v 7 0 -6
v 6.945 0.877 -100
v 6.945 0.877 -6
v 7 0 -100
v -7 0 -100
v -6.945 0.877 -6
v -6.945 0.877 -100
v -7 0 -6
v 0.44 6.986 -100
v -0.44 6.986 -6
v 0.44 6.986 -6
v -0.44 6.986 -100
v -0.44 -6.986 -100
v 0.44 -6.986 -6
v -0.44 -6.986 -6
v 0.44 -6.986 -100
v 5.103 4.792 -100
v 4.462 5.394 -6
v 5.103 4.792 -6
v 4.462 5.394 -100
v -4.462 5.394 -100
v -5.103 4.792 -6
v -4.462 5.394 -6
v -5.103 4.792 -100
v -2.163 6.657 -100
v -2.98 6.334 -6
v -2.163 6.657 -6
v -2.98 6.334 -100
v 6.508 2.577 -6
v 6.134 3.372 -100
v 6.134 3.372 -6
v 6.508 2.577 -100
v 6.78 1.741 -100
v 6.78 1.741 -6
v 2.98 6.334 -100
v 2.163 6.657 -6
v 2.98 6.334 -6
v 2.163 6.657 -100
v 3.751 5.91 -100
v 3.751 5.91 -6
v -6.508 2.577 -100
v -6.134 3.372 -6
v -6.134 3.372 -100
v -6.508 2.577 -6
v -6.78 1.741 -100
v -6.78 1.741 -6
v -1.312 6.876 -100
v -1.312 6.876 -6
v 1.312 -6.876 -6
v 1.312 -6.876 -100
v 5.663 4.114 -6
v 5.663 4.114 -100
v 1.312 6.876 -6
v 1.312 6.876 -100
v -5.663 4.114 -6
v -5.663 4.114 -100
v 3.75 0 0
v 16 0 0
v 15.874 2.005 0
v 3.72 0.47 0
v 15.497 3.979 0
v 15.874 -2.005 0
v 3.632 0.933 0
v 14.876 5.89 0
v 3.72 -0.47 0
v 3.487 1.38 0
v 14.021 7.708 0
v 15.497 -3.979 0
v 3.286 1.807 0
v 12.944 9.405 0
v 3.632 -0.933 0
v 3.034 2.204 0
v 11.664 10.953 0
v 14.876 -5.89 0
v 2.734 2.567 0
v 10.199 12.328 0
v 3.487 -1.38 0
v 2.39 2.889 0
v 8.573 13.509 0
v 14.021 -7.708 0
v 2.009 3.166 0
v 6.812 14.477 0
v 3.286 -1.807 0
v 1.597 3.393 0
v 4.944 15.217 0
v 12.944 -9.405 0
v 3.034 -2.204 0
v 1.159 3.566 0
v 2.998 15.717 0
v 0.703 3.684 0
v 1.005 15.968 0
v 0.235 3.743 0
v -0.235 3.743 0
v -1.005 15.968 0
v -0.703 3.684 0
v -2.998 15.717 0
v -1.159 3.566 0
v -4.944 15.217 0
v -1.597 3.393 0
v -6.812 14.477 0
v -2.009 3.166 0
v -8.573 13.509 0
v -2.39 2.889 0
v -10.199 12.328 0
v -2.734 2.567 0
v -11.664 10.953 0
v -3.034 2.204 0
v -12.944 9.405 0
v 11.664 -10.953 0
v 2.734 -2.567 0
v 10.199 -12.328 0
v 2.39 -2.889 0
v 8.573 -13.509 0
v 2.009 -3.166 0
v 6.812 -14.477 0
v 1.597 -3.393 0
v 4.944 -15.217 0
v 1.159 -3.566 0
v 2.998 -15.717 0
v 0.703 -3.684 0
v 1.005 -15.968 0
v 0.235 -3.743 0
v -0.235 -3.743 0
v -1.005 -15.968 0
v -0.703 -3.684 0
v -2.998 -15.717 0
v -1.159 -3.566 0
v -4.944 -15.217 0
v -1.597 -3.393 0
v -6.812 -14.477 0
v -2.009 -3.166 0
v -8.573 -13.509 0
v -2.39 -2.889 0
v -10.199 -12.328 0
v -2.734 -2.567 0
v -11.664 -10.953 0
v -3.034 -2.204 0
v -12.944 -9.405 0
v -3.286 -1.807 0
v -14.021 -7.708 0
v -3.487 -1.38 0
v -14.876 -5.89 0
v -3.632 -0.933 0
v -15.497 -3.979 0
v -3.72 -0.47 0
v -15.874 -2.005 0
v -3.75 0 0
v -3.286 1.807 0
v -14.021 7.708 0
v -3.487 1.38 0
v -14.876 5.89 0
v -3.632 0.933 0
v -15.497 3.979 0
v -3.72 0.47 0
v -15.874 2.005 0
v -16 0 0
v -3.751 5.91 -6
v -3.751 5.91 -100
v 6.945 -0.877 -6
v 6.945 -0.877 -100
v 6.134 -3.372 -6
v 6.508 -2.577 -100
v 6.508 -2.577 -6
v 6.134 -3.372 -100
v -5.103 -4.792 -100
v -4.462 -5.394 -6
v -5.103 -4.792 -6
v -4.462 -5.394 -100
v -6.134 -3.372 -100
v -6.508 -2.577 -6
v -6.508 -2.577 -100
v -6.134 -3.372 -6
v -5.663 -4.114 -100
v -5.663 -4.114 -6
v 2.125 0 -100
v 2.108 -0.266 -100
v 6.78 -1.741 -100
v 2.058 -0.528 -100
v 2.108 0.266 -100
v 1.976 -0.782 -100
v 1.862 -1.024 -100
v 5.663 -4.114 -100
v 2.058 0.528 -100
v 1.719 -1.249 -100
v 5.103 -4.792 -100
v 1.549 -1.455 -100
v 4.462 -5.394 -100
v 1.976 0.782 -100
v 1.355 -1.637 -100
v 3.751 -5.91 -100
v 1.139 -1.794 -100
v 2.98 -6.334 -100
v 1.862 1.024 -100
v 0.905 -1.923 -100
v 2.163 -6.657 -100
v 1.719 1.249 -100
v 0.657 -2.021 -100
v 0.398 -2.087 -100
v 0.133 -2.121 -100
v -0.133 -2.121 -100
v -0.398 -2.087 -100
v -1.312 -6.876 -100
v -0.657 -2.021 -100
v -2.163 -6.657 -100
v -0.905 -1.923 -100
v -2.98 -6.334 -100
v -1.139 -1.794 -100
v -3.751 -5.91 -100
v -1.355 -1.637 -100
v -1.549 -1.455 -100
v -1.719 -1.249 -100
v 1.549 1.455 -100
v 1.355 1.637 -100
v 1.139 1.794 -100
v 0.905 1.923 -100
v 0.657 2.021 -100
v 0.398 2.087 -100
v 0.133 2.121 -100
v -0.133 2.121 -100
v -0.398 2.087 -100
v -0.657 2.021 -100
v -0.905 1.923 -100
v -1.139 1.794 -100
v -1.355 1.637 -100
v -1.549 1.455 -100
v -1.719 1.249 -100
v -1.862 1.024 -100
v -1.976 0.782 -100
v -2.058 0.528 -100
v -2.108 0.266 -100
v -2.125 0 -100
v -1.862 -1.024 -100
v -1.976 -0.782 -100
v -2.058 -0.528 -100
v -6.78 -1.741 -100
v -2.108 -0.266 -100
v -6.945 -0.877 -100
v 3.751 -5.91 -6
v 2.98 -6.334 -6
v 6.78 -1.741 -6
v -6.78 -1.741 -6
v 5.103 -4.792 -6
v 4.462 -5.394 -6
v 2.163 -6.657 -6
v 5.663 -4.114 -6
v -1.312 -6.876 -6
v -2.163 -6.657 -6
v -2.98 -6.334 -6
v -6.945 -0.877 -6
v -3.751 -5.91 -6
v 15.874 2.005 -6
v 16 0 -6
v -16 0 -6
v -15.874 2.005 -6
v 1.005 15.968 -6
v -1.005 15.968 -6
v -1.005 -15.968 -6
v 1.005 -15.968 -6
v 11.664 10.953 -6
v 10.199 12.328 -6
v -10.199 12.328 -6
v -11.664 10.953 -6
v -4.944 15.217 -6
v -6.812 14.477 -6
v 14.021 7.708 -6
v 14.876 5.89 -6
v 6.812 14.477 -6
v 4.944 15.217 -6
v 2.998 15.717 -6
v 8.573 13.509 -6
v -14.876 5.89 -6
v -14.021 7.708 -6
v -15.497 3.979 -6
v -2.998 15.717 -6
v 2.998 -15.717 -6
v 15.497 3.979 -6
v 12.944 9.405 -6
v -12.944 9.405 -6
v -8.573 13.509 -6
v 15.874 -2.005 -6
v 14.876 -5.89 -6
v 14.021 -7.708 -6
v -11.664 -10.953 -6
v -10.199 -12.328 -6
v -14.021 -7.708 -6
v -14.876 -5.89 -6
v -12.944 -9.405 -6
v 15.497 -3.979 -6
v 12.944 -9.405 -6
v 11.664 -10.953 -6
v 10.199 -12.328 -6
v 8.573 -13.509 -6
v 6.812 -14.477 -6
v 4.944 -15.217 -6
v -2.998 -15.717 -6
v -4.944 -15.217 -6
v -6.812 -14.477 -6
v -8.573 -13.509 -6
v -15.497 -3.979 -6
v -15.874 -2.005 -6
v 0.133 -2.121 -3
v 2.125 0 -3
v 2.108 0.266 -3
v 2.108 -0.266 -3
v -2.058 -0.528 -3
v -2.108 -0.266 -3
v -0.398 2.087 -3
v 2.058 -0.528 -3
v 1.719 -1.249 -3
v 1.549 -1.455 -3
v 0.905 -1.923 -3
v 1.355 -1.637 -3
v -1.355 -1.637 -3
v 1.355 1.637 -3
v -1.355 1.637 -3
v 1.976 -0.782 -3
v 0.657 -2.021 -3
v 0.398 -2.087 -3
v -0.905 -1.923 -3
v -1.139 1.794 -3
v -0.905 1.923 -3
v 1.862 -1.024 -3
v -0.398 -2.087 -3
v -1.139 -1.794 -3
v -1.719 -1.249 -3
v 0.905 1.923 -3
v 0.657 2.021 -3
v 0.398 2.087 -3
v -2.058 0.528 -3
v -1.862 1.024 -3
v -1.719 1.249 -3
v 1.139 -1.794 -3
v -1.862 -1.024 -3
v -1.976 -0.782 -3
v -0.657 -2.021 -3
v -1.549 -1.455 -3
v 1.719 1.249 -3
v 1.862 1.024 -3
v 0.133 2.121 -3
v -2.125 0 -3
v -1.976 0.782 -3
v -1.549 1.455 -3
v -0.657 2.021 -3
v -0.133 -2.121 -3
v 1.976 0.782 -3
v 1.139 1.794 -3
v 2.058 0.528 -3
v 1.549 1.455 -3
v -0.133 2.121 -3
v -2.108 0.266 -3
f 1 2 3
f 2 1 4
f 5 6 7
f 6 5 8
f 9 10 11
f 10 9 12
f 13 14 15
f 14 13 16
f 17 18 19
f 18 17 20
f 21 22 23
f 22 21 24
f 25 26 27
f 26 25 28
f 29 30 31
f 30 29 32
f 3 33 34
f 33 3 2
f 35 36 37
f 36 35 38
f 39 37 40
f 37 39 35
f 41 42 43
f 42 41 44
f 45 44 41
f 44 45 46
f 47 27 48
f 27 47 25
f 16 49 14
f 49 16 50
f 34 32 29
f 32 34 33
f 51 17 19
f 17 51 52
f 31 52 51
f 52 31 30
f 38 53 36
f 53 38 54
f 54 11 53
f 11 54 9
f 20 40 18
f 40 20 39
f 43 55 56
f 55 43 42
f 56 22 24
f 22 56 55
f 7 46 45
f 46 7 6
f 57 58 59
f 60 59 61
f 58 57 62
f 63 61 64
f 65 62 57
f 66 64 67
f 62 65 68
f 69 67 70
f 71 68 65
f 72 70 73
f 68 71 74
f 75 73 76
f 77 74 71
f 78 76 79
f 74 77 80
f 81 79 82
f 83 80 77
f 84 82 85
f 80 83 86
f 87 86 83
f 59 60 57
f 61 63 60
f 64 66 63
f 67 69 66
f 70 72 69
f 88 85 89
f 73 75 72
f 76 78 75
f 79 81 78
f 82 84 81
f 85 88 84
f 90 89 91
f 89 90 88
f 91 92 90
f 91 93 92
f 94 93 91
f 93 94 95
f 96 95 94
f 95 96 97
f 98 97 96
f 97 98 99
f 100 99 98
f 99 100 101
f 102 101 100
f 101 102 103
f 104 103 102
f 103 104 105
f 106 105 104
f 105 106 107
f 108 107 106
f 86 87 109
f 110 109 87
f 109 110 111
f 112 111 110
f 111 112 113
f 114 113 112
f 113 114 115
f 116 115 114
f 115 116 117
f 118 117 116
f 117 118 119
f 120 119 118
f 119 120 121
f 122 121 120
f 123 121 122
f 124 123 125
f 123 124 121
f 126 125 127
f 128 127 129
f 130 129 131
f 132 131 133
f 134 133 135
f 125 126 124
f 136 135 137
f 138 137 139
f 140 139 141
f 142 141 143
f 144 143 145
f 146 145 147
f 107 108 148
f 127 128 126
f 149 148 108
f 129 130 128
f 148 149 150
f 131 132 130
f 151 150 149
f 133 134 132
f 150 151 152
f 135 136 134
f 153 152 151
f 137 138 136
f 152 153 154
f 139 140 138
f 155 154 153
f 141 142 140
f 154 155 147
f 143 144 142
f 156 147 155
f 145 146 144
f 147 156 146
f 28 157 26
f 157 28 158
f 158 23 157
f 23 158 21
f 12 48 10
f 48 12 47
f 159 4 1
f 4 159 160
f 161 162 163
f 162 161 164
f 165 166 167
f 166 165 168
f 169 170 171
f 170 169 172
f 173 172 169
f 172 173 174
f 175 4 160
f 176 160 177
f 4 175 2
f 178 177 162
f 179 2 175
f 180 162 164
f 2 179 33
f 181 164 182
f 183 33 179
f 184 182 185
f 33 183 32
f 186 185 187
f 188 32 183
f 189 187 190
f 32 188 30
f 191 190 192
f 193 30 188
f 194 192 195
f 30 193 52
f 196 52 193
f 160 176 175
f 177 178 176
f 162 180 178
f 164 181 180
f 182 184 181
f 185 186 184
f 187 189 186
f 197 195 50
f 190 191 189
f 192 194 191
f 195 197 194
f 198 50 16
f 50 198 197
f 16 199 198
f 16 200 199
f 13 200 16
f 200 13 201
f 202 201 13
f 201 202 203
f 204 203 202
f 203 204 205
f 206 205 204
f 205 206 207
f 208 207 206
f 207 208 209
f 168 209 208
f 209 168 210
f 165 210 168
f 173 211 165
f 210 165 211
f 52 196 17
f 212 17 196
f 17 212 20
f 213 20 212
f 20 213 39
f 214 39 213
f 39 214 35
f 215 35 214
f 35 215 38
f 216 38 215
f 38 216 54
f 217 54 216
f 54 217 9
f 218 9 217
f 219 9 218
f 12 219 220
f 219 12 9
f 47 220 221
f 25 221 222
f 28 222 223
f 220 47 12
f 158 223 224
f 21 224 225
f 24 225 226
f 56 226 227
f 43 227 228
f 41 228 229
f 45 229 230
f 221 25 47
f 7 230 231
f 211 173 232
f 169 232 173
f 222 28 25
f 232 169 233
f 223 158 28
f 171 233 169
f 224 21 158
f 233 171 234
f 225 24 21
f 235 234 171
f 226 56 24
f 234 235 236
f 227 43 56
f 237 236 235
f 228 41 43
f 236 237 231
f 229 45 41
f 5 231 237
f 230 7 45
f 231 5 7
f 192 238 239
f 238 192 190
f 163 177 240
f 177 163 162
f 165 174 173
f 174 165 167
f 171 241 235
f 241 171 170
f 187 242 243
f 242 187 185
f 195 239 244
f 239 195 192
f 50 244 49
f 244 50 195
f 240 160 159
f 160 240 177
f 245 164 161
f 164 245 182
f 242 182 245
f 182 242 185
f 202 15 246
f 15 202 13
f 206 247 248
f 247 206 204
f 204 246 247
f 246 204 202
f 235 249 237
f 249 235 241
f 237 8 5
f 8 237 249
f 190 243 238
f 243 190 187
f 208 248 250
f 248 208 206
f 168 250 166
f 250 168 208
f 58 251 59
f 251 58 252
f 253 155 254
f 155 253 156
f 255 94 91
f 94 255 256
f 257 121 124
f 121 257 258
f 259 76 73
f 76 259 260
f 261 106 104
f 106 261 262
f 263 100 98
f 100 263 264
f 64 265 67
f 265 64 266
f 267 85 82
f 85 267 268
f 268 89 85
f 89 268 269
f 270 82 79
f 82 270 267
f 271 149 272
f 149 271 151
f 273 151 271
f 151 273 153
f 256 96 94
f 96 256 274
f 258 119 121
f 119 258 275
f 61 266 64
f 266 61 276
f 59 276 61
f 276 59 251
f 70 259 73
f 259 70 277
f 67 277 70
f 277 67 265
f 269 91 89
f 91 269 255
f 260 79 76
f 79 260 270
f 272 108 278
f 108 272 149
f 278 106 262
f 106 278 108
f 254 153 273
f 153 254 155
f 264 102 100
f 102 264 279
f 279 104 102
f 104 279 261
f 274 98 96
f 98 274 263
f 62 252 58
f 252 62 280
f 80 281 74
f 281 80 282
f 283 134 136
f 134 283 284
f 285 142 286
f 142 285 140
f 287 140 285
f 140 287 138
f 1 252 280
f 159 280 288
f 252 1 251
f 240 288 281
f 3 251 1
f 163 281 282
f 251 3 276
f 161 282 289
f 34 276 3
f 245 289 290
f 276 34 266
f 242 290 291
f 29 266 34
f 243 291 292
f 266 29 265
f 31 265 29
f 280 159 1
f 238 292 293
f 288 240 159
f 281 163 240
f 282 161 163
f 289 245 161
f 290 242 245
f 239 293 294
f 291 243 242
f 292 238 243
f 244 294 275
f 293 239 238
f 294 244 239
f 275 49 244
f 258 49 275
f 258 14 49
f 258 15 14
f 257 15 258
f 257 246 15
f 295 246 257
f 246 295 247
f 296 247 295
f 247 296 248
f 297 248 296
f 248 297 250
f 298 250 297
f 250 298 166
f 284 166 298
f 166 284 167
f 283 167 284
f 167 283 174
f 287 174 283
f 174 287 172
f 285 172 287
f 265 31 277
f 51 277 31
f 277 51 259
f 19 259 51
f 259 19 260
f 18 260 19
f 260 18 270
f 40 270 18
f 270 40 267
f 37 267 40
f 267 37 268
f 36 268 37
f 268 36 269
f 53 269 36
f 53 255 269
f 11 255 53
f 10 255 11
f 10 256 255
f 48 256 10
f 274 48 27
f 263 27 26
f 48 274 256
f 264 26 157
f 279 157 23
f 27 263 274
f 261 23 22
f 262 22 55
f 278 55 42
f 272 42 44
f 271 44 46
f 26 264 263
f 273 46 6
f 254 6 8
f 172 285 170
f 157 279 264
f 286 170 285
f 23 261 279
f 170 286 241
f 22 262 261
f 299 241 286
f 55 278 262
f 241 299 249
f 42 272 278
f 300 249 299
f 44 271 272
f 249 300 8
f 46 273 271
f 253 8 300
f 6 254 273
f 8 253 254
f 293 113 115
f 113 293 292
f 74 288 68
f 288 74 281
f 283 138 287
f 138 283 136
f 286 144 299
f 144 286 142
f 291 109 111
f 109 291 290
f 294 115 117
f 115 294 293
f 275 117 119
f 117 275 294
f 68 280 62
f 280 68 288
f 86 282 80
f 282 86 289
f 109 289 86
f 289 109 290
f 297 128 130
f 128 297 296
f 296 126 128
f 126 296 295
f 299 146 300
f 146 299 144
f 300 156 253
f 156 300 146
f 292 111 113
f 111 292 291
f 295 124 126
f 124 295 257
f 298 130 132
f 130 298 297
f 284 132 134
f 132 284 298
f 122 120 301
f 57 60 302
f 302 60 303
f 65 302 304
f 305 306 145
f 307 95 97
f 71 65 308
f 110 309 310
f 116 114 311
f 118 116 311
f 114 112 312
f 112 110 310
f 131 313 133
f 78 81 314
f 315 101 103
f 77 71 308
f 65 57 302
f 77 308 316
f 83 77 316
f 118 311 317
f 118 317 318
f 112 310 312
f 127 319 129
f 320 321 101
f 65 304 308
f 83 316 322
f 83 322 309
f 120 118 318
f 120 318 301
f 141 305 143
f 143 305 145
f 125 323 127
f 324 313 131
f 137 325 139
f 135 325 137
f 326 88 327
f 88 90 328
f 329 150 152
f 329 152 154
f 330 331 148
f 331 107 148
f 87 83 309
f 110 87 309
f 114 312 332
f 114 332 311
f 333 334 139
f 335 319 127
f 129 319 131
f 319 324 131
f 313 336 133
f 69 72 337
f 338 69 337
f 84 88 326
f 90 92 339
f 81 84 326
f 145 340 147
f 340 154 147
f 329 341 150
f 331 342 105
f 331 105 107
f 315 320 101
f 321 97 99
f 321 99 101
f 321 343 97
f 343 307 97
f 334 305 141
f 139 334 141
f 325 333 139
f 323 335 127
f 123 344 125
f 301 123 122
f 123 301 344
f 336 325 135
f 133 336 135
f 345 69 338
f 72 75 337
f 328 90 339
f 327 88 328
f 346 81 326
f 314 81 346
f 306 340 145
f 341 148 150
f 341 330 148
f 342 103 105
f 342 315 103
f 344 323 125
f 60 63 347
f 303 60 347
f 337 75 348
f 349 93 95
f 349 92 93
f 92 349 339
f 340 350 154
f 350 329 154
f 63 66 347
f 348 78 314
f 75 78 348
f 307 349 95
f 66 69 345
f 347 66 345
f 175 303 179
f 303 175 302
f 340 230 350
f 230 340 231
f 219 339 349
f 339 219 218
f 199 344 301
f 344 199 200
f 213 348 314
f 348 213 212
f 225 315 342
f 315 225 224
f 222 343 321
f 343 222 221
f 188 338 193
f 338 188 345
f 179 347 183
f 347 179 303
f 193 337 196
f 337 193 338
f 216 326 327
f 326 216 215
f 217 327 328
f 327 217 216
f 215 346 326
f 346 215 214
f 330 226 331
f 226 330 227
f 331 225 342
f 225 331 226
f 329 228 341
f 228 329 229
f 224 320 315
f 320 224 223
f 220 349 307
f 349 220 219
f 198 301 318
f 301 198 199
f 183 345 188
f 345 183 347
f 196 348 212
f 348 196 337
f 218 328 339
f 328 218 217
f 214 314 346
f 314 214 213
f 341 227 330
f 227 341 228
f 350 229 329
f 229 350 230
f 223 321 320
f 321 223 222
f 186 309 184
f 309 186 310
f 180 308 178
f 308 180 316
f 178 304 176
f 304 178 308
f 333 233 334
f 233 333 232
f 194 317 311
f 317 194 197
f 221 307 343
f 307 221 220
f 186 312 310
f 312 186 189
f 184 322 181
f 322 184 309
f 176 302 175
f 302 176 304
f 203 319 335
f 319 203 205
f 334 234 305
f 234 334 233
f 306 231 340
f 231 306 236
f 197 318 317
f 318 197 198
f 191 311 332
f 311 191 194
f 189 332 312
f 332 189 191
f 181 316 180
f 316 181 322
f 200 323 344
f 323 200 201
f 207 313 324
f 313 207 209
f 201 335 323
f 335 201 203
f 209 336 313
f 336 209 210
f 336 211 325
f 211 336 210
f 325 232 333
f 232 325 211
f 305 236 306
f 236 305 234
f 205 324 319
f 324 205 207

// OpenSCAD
$fn = 50;


difference() {
	union() {
		translate(v = [0, 0, -100.0000000000]) {
			cylinder(h = 100, r = 7.0000000000);
		}
		translate(v = [0, 0, -6.0000000000]) {
			cylinder(h = 6, r = 16.0000000000);
		}
	}
	union() {
		translate(v = [0, 0, 0]) {
			rotate(a = [0, 0, 0]) {
				difference() {
					union() {
						#translate(v = [0, 0, -100.0000000000]) {
							cylinder(h = 100, r = 2.0000000000);
						}
						#translate(v = [0, 0, -3]) {
							cylinder(h = 3, r1 = 2.1250000000, r2 = 3.7500000000);
						}
						#translate(v = [0, 0, -100.0000000000]) {
							cylinder(h = 100, r = 2.1250000000);
						}
						#translate(v = [0, 0, -100.0000000000]) {
							cylinder(h = 100, r = 2.0000000000);
						}
					}
					union();
				}
			}
		}
	}
}
